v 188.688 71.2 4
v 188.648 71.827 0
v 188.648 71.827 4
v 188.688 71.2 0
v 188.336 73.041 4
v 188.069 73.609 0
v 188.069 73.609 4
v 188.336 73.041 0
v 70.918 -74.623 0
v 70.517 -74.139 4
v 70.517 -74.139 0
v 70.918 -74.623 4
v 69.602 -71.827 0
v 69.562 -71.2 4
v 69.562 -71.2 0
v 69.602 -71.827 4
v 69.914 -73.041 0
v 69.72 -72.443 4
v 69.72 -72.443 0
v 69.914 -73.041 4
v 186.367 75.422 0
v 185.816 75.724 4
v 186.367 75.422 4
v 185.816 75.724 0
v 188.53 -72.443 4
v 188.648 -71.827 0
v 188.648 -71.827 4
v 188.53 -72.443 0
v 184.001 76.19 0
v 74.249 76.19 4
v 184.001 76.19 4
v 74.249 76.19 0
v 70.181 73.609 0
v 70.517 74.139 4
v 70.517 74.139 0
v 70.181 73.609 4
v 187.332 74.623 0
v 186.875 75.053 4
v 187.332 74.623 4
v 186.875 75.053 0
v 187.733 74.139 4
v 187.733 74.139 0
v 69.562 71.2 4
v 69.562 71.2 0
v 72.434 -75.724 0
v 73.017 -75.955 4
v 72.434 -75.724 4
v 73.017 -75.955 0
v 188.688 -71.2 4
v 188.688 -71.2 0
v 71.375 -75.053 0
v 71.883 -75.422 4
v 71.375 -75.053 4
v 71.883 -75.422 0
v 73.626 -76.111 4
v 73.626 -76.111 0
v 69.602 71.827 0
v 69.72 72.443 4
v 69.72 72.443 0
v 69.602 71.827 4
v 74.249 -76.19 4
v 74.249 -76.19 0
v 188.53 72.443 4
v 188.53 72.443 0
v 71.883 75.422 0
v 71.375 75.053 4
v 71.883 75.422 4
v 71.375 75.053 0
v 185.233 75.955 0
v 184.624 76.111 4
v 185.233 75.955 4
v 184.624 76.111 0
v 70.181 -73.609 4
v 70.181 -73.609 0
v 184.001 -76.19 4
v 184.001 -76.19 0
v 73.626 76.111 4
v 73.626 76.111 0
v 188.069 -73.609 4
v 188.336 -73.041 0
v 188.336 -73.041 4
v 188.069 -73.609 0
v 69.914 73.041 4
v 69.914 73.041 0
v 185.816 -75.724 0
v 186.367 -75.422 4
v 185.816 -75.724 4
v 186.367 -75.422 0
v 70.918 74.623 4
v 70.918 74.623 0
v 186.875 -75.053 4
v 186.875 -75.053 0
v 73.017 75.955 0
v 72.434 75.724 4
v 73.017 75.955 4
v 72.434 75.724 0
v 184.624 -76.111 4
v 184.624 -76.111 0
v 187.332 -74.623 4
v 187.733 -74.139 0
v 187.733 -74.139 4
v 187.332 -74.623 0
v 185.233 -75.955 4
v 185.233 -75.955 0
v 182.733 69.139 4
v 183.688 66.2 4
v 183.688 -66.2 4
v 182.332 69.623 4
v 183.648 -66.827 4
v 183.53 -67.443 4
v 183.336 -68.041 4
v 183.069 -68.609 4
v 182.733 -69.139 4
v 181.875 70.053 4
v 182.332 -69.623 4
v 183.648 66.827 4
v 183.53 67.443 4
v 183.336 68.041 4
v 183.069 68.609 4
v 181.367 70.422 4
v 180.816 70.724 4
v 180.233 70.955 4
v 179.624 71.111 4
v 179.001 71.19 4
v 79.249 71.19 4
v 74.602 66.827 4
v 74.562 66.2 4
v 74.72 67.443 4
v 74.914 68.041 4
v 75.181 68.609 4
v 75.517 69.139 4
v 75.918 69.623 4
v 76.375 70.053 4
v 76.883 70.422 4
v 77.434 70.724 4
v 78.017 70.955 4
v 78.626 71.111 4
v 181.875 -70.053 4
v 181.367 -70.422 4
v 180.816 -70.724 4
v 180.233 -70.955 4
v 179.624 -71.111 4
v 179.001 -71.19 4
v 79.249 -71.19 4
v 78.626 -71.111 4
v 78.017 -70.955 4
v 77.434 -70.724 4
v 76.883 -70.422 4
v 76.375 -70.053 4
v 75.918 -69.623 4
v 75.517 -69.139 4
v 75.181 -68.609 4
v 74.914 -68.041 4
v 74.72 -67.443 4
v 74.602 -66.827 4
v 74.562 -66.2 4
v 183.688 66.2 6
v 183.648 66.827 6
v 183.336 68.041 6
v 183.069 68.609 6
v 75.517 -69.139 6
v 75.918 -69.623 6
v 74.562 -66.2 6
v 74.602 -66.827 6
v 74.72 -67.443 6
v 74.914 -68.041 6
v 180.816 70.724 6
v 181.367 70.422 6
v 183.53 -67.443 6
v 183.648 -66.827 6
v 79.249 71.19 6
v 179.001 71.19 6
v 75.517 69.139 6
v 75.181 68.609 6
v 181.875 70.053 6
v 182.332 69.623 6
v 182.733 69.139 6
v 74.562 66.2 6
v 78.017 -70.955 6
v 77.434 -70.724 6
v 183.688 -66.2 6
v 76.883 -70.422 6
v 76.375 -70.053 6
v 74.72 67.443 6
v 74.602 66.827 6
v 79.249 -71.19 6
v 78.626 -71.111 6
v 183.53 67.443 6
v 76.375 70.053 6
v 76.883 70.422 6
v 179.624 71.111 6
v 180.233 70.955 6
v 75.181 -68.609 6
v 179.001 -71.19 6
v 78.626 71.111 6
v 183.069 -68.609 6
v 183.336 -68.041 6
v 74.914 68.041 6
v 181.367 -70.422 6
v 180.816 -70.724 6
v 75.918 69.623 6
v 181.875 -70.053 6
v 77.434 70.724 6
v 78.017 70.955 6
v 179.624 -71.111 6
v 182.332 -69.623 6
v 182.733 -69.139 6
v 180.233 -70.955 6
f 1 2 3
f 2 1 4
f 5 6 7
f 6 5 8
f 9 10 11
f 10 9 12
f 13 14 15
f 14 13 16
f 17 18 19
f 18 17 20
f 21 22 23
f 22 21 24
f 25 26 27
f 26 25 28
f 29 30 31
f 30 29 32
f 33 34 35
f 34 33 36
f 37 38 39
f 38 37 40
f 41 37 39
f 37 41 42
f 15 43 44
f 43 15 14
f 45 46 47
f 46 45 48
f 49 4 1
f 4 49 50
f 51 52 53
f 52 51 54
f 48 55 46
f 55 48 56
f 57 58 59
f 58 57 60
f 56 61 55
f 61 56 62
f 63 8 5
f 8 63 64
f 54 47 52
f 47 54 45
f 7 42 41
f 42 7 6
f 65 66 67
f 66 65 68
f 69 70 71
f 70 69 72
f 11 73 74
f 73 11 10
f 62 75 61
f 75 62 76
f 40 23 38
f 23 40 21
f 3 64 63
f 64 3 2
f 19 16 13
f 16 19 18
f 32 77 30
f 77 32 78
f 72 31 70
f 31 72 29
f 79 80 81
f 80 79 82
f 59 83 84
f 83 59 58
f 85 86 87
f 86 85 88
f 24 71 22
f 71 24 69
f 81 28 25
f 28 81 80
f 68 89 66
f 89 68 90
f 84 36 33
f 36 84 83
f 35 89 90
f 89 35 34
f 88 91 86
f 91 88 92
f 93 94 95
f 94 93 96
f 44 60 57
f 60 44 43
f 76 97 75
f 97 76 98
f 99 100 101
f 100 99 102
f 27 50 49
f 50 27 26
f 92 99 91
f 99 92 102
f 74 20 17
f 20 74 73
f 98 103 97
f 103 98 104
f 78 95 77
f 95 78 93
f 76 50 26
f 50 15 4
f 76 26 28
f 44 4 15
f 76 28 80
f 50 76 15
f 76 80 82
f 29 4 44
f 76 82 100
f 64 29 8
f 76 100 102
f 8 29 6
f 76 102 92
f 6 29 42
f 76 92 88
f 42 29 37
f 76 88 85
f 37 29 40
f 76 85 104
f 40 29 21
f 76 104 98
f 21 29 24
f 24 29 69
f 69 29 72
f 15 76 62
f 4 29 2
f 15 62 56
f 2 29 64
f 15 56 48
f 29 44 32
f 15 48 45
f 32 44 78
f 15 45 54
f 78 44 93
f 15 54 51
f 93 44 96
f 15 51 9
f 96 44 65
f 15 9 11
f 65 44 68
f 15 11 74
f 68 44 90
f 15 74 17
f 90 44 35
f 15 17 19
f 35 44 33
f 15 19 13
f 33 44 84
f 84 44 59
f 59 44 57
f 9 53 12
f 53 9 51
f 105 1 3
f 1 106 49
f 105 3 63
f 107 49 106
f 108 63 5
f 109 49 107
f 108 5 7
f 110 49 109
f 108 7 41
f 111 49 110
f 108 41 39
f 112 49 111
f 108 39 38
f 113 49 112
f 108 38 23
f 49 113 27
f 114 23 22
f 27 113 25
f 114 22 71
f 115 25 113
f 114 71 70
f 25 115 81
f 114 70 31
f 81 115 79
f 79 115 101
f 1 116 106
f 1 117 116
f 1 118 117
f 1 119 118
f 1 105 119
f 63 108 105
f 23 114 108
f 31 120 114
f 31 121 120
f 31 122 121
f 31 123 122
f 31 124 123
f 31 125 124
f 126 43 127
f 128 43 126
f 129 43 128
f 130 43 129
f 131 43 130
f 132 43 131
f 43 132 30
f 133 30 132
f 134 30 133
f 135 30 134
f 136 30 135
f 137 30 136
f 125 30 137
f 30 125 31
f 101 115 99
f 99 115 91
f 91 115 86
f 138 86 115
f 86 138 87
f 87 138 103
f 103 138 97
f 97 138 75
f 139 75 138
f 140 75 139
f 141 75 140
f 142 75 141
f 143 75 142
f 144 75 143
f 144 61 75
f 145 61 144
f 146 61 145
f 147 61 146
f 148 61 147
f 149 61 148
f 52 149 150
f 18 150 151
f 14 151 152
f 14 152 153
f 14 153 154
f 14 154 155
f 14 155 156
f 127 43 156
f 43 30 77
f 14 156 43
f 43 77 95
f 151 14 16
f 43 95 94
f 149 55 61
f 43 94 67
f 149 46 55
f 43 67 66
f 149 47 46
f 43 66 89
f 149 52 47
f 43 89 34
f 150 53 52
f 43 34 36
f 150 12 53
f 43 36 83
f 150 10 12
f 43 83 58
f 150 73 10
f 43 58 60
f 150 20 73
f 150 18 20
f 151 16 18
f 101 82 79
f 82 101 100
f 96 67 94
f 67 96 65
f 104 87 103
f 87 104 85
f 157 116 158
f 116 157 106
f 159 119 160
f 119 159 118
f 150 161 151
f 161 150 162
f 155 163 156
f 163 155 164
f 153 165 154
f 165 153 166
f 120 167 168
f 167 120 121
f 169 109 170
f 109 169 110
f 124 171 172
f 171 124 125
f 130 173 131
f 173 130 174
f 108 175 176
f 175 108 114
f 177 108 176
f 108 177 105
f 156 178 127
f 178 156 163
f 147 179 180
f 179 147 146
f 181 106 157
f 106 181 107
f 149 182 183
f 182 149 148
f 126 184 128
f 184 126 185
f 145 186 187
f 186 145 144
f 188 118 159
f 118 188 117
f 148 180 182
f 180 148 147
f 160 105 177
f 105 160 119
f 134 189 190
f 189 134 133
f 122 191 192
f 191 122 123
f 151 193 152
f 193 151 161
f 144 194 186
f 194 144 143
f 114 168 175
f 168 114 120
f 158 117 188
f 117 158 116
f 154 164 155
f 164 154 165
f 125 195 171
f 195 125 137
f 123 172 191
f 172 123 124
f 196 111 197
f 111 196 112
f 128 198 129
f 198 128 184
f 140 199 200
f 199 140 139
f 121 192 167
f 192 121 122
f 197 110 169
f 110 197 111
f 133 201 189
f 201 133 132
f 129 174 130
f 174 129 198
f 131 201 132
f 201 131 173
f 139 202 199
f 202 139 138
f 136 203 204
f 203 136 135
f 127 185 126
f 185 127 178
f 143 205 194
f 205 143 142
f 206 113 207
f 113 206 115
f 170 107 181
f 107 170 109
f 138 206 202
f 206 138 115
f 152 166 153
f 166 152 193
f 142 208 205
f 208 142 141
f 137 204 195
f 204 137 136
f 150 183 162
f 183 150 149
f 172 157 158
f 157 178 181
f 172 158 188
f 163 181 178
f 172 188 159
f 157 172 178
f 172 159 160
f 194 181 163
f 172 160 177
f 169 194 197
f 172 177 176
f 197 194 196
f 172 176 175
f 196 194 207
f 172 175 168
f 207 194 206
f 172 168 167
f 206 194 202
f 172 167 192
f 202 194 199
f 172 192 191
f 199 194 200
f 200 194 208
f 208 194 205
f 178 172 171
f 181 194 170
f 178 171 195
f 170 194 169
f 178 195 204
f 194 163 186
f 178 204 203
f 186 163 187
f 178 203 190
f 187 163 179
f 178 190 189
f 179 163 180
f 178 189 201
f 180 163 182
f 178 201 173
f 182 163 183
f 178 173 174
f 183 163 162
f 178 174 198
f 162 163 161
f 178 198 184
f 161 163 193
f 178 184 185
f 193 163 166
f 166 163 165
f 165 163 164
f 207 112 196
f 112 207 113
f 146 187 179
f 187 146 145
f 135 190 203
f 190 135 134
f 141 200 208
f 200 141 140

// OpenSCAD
//outside dimensions of the box
CM=25.4;


//additional parameters
corner_radius = 5;      // radius of box corners
wall_thickness = 4;     // total thickness of any wall
post_diameter = 10;     // internal post for screws
hole_diameter = 3;      // size of screws for lid (0=no screws)
lid_thickness= 2;       // comment out if no lid required
lid_lip = 5;            // 0 makes lid flush to top
lid_tolerance = .5;     // shrink lid so not squeaky fit

width  = (4 + 3/8) * CM + 2 * wall_thickness;    //x dimension
length = 6 * CM;    //y dimension
height = .5 * CM;    //z dimension
$fn=50;

fn=50;

// make 4 "posts" about 0,0,0 offset by +/-x +/-y 
module posts(x,y,z,h,r)
{
    translate([x,y,z]){         // move post to this location
        cylinder(r = r, h = h); // make one post
    }
    translate([-x,y,z]){        // move post to this location
        cylinder(r = r, h = h); // make one post
    }   
    translate([-x,-y,z]){       // move post to this location
        cylinder(r = r, h = h); // make one post
    }
    translate([x,-y,z]){        // move post to this location
        cylinder(r = r, h = h); // make one post
    }    
}

/*
difference() { // make 2 boxes one inside the other and remove "inside box" from "outside box"
    // use posts to define OUTSIDE of a solid box centered on 0,0
    hull(){
        posts(  
            x=(width/2  - corner_radius),
            y=(length/2 - corner_radius),
            z= 0,
            h= height,
            r = corner_radius);
    }
        
    // use posts to define INSIDE of a solid box centered on 0,0
    hull(){
        posts(
            x=(width/2  - corner_radius - wall_thickness),
            y=(length/2 - corner_radius - wall_thickness),
            z= wall_thickness, // move up to create bottom
            h= height,
            r = corner_radius);
    }

    // now we have a simple hollow box.
    // use posts to define a LIP inside the wall 
    hull(){
        posts(
            x=(width/2  - corner_radius - lid_lip),
            y=(length/2 - corner_radius - lid_lip),
            z= height - lid_thickness,
            h= lid_thickness + 1,
            r = corner_radius);
    }
}
*/


// create a lid
translate([10 + width, 0, 0]) 
union() { 

    // make 2 boxes one inside the other and remove "inside box" from "outside box"
    // use posts to define OUTSIDE of a solid box centered on 0,0
    hull(){
        posts(  
            x=(width/2  - corner_radius),
            y=(length/2 - corner_radius),
            z= 0,
            h= lid_thickness *2,
            r = corner_radius);
    }

    // now we have a simple hollow box.
    // use posts to define a LIP inside the wall
    color("RED", 1)
    translate( [ 0, 0, -lid_thickness  ]) 
    hull(){
        posts(
            x=(width/2  - corner_radius - lid_lip),
            y=(length/2 - corner_radius - lid_lip),
            z= lid_thickness + 3,
            h= lid_thickness + 1,
            r = corner_radius);
    }

}



/*
difference()
{
    hull()
    {
            // make undrilled lid
            posts(
                x=(width/2  - corner_radius - wall_thickness/2 - lid_tolerance),
                y=(length/2 - corner_radius - wall_thickness/2 - lid_tolerance),
                z= 0, // move up to create bottom
                h= lid_thickness,
                r = corner_radius);
            
            // drill outholes for the screws via difference
            // ADD the holes for the screws.
    }

}
*/
